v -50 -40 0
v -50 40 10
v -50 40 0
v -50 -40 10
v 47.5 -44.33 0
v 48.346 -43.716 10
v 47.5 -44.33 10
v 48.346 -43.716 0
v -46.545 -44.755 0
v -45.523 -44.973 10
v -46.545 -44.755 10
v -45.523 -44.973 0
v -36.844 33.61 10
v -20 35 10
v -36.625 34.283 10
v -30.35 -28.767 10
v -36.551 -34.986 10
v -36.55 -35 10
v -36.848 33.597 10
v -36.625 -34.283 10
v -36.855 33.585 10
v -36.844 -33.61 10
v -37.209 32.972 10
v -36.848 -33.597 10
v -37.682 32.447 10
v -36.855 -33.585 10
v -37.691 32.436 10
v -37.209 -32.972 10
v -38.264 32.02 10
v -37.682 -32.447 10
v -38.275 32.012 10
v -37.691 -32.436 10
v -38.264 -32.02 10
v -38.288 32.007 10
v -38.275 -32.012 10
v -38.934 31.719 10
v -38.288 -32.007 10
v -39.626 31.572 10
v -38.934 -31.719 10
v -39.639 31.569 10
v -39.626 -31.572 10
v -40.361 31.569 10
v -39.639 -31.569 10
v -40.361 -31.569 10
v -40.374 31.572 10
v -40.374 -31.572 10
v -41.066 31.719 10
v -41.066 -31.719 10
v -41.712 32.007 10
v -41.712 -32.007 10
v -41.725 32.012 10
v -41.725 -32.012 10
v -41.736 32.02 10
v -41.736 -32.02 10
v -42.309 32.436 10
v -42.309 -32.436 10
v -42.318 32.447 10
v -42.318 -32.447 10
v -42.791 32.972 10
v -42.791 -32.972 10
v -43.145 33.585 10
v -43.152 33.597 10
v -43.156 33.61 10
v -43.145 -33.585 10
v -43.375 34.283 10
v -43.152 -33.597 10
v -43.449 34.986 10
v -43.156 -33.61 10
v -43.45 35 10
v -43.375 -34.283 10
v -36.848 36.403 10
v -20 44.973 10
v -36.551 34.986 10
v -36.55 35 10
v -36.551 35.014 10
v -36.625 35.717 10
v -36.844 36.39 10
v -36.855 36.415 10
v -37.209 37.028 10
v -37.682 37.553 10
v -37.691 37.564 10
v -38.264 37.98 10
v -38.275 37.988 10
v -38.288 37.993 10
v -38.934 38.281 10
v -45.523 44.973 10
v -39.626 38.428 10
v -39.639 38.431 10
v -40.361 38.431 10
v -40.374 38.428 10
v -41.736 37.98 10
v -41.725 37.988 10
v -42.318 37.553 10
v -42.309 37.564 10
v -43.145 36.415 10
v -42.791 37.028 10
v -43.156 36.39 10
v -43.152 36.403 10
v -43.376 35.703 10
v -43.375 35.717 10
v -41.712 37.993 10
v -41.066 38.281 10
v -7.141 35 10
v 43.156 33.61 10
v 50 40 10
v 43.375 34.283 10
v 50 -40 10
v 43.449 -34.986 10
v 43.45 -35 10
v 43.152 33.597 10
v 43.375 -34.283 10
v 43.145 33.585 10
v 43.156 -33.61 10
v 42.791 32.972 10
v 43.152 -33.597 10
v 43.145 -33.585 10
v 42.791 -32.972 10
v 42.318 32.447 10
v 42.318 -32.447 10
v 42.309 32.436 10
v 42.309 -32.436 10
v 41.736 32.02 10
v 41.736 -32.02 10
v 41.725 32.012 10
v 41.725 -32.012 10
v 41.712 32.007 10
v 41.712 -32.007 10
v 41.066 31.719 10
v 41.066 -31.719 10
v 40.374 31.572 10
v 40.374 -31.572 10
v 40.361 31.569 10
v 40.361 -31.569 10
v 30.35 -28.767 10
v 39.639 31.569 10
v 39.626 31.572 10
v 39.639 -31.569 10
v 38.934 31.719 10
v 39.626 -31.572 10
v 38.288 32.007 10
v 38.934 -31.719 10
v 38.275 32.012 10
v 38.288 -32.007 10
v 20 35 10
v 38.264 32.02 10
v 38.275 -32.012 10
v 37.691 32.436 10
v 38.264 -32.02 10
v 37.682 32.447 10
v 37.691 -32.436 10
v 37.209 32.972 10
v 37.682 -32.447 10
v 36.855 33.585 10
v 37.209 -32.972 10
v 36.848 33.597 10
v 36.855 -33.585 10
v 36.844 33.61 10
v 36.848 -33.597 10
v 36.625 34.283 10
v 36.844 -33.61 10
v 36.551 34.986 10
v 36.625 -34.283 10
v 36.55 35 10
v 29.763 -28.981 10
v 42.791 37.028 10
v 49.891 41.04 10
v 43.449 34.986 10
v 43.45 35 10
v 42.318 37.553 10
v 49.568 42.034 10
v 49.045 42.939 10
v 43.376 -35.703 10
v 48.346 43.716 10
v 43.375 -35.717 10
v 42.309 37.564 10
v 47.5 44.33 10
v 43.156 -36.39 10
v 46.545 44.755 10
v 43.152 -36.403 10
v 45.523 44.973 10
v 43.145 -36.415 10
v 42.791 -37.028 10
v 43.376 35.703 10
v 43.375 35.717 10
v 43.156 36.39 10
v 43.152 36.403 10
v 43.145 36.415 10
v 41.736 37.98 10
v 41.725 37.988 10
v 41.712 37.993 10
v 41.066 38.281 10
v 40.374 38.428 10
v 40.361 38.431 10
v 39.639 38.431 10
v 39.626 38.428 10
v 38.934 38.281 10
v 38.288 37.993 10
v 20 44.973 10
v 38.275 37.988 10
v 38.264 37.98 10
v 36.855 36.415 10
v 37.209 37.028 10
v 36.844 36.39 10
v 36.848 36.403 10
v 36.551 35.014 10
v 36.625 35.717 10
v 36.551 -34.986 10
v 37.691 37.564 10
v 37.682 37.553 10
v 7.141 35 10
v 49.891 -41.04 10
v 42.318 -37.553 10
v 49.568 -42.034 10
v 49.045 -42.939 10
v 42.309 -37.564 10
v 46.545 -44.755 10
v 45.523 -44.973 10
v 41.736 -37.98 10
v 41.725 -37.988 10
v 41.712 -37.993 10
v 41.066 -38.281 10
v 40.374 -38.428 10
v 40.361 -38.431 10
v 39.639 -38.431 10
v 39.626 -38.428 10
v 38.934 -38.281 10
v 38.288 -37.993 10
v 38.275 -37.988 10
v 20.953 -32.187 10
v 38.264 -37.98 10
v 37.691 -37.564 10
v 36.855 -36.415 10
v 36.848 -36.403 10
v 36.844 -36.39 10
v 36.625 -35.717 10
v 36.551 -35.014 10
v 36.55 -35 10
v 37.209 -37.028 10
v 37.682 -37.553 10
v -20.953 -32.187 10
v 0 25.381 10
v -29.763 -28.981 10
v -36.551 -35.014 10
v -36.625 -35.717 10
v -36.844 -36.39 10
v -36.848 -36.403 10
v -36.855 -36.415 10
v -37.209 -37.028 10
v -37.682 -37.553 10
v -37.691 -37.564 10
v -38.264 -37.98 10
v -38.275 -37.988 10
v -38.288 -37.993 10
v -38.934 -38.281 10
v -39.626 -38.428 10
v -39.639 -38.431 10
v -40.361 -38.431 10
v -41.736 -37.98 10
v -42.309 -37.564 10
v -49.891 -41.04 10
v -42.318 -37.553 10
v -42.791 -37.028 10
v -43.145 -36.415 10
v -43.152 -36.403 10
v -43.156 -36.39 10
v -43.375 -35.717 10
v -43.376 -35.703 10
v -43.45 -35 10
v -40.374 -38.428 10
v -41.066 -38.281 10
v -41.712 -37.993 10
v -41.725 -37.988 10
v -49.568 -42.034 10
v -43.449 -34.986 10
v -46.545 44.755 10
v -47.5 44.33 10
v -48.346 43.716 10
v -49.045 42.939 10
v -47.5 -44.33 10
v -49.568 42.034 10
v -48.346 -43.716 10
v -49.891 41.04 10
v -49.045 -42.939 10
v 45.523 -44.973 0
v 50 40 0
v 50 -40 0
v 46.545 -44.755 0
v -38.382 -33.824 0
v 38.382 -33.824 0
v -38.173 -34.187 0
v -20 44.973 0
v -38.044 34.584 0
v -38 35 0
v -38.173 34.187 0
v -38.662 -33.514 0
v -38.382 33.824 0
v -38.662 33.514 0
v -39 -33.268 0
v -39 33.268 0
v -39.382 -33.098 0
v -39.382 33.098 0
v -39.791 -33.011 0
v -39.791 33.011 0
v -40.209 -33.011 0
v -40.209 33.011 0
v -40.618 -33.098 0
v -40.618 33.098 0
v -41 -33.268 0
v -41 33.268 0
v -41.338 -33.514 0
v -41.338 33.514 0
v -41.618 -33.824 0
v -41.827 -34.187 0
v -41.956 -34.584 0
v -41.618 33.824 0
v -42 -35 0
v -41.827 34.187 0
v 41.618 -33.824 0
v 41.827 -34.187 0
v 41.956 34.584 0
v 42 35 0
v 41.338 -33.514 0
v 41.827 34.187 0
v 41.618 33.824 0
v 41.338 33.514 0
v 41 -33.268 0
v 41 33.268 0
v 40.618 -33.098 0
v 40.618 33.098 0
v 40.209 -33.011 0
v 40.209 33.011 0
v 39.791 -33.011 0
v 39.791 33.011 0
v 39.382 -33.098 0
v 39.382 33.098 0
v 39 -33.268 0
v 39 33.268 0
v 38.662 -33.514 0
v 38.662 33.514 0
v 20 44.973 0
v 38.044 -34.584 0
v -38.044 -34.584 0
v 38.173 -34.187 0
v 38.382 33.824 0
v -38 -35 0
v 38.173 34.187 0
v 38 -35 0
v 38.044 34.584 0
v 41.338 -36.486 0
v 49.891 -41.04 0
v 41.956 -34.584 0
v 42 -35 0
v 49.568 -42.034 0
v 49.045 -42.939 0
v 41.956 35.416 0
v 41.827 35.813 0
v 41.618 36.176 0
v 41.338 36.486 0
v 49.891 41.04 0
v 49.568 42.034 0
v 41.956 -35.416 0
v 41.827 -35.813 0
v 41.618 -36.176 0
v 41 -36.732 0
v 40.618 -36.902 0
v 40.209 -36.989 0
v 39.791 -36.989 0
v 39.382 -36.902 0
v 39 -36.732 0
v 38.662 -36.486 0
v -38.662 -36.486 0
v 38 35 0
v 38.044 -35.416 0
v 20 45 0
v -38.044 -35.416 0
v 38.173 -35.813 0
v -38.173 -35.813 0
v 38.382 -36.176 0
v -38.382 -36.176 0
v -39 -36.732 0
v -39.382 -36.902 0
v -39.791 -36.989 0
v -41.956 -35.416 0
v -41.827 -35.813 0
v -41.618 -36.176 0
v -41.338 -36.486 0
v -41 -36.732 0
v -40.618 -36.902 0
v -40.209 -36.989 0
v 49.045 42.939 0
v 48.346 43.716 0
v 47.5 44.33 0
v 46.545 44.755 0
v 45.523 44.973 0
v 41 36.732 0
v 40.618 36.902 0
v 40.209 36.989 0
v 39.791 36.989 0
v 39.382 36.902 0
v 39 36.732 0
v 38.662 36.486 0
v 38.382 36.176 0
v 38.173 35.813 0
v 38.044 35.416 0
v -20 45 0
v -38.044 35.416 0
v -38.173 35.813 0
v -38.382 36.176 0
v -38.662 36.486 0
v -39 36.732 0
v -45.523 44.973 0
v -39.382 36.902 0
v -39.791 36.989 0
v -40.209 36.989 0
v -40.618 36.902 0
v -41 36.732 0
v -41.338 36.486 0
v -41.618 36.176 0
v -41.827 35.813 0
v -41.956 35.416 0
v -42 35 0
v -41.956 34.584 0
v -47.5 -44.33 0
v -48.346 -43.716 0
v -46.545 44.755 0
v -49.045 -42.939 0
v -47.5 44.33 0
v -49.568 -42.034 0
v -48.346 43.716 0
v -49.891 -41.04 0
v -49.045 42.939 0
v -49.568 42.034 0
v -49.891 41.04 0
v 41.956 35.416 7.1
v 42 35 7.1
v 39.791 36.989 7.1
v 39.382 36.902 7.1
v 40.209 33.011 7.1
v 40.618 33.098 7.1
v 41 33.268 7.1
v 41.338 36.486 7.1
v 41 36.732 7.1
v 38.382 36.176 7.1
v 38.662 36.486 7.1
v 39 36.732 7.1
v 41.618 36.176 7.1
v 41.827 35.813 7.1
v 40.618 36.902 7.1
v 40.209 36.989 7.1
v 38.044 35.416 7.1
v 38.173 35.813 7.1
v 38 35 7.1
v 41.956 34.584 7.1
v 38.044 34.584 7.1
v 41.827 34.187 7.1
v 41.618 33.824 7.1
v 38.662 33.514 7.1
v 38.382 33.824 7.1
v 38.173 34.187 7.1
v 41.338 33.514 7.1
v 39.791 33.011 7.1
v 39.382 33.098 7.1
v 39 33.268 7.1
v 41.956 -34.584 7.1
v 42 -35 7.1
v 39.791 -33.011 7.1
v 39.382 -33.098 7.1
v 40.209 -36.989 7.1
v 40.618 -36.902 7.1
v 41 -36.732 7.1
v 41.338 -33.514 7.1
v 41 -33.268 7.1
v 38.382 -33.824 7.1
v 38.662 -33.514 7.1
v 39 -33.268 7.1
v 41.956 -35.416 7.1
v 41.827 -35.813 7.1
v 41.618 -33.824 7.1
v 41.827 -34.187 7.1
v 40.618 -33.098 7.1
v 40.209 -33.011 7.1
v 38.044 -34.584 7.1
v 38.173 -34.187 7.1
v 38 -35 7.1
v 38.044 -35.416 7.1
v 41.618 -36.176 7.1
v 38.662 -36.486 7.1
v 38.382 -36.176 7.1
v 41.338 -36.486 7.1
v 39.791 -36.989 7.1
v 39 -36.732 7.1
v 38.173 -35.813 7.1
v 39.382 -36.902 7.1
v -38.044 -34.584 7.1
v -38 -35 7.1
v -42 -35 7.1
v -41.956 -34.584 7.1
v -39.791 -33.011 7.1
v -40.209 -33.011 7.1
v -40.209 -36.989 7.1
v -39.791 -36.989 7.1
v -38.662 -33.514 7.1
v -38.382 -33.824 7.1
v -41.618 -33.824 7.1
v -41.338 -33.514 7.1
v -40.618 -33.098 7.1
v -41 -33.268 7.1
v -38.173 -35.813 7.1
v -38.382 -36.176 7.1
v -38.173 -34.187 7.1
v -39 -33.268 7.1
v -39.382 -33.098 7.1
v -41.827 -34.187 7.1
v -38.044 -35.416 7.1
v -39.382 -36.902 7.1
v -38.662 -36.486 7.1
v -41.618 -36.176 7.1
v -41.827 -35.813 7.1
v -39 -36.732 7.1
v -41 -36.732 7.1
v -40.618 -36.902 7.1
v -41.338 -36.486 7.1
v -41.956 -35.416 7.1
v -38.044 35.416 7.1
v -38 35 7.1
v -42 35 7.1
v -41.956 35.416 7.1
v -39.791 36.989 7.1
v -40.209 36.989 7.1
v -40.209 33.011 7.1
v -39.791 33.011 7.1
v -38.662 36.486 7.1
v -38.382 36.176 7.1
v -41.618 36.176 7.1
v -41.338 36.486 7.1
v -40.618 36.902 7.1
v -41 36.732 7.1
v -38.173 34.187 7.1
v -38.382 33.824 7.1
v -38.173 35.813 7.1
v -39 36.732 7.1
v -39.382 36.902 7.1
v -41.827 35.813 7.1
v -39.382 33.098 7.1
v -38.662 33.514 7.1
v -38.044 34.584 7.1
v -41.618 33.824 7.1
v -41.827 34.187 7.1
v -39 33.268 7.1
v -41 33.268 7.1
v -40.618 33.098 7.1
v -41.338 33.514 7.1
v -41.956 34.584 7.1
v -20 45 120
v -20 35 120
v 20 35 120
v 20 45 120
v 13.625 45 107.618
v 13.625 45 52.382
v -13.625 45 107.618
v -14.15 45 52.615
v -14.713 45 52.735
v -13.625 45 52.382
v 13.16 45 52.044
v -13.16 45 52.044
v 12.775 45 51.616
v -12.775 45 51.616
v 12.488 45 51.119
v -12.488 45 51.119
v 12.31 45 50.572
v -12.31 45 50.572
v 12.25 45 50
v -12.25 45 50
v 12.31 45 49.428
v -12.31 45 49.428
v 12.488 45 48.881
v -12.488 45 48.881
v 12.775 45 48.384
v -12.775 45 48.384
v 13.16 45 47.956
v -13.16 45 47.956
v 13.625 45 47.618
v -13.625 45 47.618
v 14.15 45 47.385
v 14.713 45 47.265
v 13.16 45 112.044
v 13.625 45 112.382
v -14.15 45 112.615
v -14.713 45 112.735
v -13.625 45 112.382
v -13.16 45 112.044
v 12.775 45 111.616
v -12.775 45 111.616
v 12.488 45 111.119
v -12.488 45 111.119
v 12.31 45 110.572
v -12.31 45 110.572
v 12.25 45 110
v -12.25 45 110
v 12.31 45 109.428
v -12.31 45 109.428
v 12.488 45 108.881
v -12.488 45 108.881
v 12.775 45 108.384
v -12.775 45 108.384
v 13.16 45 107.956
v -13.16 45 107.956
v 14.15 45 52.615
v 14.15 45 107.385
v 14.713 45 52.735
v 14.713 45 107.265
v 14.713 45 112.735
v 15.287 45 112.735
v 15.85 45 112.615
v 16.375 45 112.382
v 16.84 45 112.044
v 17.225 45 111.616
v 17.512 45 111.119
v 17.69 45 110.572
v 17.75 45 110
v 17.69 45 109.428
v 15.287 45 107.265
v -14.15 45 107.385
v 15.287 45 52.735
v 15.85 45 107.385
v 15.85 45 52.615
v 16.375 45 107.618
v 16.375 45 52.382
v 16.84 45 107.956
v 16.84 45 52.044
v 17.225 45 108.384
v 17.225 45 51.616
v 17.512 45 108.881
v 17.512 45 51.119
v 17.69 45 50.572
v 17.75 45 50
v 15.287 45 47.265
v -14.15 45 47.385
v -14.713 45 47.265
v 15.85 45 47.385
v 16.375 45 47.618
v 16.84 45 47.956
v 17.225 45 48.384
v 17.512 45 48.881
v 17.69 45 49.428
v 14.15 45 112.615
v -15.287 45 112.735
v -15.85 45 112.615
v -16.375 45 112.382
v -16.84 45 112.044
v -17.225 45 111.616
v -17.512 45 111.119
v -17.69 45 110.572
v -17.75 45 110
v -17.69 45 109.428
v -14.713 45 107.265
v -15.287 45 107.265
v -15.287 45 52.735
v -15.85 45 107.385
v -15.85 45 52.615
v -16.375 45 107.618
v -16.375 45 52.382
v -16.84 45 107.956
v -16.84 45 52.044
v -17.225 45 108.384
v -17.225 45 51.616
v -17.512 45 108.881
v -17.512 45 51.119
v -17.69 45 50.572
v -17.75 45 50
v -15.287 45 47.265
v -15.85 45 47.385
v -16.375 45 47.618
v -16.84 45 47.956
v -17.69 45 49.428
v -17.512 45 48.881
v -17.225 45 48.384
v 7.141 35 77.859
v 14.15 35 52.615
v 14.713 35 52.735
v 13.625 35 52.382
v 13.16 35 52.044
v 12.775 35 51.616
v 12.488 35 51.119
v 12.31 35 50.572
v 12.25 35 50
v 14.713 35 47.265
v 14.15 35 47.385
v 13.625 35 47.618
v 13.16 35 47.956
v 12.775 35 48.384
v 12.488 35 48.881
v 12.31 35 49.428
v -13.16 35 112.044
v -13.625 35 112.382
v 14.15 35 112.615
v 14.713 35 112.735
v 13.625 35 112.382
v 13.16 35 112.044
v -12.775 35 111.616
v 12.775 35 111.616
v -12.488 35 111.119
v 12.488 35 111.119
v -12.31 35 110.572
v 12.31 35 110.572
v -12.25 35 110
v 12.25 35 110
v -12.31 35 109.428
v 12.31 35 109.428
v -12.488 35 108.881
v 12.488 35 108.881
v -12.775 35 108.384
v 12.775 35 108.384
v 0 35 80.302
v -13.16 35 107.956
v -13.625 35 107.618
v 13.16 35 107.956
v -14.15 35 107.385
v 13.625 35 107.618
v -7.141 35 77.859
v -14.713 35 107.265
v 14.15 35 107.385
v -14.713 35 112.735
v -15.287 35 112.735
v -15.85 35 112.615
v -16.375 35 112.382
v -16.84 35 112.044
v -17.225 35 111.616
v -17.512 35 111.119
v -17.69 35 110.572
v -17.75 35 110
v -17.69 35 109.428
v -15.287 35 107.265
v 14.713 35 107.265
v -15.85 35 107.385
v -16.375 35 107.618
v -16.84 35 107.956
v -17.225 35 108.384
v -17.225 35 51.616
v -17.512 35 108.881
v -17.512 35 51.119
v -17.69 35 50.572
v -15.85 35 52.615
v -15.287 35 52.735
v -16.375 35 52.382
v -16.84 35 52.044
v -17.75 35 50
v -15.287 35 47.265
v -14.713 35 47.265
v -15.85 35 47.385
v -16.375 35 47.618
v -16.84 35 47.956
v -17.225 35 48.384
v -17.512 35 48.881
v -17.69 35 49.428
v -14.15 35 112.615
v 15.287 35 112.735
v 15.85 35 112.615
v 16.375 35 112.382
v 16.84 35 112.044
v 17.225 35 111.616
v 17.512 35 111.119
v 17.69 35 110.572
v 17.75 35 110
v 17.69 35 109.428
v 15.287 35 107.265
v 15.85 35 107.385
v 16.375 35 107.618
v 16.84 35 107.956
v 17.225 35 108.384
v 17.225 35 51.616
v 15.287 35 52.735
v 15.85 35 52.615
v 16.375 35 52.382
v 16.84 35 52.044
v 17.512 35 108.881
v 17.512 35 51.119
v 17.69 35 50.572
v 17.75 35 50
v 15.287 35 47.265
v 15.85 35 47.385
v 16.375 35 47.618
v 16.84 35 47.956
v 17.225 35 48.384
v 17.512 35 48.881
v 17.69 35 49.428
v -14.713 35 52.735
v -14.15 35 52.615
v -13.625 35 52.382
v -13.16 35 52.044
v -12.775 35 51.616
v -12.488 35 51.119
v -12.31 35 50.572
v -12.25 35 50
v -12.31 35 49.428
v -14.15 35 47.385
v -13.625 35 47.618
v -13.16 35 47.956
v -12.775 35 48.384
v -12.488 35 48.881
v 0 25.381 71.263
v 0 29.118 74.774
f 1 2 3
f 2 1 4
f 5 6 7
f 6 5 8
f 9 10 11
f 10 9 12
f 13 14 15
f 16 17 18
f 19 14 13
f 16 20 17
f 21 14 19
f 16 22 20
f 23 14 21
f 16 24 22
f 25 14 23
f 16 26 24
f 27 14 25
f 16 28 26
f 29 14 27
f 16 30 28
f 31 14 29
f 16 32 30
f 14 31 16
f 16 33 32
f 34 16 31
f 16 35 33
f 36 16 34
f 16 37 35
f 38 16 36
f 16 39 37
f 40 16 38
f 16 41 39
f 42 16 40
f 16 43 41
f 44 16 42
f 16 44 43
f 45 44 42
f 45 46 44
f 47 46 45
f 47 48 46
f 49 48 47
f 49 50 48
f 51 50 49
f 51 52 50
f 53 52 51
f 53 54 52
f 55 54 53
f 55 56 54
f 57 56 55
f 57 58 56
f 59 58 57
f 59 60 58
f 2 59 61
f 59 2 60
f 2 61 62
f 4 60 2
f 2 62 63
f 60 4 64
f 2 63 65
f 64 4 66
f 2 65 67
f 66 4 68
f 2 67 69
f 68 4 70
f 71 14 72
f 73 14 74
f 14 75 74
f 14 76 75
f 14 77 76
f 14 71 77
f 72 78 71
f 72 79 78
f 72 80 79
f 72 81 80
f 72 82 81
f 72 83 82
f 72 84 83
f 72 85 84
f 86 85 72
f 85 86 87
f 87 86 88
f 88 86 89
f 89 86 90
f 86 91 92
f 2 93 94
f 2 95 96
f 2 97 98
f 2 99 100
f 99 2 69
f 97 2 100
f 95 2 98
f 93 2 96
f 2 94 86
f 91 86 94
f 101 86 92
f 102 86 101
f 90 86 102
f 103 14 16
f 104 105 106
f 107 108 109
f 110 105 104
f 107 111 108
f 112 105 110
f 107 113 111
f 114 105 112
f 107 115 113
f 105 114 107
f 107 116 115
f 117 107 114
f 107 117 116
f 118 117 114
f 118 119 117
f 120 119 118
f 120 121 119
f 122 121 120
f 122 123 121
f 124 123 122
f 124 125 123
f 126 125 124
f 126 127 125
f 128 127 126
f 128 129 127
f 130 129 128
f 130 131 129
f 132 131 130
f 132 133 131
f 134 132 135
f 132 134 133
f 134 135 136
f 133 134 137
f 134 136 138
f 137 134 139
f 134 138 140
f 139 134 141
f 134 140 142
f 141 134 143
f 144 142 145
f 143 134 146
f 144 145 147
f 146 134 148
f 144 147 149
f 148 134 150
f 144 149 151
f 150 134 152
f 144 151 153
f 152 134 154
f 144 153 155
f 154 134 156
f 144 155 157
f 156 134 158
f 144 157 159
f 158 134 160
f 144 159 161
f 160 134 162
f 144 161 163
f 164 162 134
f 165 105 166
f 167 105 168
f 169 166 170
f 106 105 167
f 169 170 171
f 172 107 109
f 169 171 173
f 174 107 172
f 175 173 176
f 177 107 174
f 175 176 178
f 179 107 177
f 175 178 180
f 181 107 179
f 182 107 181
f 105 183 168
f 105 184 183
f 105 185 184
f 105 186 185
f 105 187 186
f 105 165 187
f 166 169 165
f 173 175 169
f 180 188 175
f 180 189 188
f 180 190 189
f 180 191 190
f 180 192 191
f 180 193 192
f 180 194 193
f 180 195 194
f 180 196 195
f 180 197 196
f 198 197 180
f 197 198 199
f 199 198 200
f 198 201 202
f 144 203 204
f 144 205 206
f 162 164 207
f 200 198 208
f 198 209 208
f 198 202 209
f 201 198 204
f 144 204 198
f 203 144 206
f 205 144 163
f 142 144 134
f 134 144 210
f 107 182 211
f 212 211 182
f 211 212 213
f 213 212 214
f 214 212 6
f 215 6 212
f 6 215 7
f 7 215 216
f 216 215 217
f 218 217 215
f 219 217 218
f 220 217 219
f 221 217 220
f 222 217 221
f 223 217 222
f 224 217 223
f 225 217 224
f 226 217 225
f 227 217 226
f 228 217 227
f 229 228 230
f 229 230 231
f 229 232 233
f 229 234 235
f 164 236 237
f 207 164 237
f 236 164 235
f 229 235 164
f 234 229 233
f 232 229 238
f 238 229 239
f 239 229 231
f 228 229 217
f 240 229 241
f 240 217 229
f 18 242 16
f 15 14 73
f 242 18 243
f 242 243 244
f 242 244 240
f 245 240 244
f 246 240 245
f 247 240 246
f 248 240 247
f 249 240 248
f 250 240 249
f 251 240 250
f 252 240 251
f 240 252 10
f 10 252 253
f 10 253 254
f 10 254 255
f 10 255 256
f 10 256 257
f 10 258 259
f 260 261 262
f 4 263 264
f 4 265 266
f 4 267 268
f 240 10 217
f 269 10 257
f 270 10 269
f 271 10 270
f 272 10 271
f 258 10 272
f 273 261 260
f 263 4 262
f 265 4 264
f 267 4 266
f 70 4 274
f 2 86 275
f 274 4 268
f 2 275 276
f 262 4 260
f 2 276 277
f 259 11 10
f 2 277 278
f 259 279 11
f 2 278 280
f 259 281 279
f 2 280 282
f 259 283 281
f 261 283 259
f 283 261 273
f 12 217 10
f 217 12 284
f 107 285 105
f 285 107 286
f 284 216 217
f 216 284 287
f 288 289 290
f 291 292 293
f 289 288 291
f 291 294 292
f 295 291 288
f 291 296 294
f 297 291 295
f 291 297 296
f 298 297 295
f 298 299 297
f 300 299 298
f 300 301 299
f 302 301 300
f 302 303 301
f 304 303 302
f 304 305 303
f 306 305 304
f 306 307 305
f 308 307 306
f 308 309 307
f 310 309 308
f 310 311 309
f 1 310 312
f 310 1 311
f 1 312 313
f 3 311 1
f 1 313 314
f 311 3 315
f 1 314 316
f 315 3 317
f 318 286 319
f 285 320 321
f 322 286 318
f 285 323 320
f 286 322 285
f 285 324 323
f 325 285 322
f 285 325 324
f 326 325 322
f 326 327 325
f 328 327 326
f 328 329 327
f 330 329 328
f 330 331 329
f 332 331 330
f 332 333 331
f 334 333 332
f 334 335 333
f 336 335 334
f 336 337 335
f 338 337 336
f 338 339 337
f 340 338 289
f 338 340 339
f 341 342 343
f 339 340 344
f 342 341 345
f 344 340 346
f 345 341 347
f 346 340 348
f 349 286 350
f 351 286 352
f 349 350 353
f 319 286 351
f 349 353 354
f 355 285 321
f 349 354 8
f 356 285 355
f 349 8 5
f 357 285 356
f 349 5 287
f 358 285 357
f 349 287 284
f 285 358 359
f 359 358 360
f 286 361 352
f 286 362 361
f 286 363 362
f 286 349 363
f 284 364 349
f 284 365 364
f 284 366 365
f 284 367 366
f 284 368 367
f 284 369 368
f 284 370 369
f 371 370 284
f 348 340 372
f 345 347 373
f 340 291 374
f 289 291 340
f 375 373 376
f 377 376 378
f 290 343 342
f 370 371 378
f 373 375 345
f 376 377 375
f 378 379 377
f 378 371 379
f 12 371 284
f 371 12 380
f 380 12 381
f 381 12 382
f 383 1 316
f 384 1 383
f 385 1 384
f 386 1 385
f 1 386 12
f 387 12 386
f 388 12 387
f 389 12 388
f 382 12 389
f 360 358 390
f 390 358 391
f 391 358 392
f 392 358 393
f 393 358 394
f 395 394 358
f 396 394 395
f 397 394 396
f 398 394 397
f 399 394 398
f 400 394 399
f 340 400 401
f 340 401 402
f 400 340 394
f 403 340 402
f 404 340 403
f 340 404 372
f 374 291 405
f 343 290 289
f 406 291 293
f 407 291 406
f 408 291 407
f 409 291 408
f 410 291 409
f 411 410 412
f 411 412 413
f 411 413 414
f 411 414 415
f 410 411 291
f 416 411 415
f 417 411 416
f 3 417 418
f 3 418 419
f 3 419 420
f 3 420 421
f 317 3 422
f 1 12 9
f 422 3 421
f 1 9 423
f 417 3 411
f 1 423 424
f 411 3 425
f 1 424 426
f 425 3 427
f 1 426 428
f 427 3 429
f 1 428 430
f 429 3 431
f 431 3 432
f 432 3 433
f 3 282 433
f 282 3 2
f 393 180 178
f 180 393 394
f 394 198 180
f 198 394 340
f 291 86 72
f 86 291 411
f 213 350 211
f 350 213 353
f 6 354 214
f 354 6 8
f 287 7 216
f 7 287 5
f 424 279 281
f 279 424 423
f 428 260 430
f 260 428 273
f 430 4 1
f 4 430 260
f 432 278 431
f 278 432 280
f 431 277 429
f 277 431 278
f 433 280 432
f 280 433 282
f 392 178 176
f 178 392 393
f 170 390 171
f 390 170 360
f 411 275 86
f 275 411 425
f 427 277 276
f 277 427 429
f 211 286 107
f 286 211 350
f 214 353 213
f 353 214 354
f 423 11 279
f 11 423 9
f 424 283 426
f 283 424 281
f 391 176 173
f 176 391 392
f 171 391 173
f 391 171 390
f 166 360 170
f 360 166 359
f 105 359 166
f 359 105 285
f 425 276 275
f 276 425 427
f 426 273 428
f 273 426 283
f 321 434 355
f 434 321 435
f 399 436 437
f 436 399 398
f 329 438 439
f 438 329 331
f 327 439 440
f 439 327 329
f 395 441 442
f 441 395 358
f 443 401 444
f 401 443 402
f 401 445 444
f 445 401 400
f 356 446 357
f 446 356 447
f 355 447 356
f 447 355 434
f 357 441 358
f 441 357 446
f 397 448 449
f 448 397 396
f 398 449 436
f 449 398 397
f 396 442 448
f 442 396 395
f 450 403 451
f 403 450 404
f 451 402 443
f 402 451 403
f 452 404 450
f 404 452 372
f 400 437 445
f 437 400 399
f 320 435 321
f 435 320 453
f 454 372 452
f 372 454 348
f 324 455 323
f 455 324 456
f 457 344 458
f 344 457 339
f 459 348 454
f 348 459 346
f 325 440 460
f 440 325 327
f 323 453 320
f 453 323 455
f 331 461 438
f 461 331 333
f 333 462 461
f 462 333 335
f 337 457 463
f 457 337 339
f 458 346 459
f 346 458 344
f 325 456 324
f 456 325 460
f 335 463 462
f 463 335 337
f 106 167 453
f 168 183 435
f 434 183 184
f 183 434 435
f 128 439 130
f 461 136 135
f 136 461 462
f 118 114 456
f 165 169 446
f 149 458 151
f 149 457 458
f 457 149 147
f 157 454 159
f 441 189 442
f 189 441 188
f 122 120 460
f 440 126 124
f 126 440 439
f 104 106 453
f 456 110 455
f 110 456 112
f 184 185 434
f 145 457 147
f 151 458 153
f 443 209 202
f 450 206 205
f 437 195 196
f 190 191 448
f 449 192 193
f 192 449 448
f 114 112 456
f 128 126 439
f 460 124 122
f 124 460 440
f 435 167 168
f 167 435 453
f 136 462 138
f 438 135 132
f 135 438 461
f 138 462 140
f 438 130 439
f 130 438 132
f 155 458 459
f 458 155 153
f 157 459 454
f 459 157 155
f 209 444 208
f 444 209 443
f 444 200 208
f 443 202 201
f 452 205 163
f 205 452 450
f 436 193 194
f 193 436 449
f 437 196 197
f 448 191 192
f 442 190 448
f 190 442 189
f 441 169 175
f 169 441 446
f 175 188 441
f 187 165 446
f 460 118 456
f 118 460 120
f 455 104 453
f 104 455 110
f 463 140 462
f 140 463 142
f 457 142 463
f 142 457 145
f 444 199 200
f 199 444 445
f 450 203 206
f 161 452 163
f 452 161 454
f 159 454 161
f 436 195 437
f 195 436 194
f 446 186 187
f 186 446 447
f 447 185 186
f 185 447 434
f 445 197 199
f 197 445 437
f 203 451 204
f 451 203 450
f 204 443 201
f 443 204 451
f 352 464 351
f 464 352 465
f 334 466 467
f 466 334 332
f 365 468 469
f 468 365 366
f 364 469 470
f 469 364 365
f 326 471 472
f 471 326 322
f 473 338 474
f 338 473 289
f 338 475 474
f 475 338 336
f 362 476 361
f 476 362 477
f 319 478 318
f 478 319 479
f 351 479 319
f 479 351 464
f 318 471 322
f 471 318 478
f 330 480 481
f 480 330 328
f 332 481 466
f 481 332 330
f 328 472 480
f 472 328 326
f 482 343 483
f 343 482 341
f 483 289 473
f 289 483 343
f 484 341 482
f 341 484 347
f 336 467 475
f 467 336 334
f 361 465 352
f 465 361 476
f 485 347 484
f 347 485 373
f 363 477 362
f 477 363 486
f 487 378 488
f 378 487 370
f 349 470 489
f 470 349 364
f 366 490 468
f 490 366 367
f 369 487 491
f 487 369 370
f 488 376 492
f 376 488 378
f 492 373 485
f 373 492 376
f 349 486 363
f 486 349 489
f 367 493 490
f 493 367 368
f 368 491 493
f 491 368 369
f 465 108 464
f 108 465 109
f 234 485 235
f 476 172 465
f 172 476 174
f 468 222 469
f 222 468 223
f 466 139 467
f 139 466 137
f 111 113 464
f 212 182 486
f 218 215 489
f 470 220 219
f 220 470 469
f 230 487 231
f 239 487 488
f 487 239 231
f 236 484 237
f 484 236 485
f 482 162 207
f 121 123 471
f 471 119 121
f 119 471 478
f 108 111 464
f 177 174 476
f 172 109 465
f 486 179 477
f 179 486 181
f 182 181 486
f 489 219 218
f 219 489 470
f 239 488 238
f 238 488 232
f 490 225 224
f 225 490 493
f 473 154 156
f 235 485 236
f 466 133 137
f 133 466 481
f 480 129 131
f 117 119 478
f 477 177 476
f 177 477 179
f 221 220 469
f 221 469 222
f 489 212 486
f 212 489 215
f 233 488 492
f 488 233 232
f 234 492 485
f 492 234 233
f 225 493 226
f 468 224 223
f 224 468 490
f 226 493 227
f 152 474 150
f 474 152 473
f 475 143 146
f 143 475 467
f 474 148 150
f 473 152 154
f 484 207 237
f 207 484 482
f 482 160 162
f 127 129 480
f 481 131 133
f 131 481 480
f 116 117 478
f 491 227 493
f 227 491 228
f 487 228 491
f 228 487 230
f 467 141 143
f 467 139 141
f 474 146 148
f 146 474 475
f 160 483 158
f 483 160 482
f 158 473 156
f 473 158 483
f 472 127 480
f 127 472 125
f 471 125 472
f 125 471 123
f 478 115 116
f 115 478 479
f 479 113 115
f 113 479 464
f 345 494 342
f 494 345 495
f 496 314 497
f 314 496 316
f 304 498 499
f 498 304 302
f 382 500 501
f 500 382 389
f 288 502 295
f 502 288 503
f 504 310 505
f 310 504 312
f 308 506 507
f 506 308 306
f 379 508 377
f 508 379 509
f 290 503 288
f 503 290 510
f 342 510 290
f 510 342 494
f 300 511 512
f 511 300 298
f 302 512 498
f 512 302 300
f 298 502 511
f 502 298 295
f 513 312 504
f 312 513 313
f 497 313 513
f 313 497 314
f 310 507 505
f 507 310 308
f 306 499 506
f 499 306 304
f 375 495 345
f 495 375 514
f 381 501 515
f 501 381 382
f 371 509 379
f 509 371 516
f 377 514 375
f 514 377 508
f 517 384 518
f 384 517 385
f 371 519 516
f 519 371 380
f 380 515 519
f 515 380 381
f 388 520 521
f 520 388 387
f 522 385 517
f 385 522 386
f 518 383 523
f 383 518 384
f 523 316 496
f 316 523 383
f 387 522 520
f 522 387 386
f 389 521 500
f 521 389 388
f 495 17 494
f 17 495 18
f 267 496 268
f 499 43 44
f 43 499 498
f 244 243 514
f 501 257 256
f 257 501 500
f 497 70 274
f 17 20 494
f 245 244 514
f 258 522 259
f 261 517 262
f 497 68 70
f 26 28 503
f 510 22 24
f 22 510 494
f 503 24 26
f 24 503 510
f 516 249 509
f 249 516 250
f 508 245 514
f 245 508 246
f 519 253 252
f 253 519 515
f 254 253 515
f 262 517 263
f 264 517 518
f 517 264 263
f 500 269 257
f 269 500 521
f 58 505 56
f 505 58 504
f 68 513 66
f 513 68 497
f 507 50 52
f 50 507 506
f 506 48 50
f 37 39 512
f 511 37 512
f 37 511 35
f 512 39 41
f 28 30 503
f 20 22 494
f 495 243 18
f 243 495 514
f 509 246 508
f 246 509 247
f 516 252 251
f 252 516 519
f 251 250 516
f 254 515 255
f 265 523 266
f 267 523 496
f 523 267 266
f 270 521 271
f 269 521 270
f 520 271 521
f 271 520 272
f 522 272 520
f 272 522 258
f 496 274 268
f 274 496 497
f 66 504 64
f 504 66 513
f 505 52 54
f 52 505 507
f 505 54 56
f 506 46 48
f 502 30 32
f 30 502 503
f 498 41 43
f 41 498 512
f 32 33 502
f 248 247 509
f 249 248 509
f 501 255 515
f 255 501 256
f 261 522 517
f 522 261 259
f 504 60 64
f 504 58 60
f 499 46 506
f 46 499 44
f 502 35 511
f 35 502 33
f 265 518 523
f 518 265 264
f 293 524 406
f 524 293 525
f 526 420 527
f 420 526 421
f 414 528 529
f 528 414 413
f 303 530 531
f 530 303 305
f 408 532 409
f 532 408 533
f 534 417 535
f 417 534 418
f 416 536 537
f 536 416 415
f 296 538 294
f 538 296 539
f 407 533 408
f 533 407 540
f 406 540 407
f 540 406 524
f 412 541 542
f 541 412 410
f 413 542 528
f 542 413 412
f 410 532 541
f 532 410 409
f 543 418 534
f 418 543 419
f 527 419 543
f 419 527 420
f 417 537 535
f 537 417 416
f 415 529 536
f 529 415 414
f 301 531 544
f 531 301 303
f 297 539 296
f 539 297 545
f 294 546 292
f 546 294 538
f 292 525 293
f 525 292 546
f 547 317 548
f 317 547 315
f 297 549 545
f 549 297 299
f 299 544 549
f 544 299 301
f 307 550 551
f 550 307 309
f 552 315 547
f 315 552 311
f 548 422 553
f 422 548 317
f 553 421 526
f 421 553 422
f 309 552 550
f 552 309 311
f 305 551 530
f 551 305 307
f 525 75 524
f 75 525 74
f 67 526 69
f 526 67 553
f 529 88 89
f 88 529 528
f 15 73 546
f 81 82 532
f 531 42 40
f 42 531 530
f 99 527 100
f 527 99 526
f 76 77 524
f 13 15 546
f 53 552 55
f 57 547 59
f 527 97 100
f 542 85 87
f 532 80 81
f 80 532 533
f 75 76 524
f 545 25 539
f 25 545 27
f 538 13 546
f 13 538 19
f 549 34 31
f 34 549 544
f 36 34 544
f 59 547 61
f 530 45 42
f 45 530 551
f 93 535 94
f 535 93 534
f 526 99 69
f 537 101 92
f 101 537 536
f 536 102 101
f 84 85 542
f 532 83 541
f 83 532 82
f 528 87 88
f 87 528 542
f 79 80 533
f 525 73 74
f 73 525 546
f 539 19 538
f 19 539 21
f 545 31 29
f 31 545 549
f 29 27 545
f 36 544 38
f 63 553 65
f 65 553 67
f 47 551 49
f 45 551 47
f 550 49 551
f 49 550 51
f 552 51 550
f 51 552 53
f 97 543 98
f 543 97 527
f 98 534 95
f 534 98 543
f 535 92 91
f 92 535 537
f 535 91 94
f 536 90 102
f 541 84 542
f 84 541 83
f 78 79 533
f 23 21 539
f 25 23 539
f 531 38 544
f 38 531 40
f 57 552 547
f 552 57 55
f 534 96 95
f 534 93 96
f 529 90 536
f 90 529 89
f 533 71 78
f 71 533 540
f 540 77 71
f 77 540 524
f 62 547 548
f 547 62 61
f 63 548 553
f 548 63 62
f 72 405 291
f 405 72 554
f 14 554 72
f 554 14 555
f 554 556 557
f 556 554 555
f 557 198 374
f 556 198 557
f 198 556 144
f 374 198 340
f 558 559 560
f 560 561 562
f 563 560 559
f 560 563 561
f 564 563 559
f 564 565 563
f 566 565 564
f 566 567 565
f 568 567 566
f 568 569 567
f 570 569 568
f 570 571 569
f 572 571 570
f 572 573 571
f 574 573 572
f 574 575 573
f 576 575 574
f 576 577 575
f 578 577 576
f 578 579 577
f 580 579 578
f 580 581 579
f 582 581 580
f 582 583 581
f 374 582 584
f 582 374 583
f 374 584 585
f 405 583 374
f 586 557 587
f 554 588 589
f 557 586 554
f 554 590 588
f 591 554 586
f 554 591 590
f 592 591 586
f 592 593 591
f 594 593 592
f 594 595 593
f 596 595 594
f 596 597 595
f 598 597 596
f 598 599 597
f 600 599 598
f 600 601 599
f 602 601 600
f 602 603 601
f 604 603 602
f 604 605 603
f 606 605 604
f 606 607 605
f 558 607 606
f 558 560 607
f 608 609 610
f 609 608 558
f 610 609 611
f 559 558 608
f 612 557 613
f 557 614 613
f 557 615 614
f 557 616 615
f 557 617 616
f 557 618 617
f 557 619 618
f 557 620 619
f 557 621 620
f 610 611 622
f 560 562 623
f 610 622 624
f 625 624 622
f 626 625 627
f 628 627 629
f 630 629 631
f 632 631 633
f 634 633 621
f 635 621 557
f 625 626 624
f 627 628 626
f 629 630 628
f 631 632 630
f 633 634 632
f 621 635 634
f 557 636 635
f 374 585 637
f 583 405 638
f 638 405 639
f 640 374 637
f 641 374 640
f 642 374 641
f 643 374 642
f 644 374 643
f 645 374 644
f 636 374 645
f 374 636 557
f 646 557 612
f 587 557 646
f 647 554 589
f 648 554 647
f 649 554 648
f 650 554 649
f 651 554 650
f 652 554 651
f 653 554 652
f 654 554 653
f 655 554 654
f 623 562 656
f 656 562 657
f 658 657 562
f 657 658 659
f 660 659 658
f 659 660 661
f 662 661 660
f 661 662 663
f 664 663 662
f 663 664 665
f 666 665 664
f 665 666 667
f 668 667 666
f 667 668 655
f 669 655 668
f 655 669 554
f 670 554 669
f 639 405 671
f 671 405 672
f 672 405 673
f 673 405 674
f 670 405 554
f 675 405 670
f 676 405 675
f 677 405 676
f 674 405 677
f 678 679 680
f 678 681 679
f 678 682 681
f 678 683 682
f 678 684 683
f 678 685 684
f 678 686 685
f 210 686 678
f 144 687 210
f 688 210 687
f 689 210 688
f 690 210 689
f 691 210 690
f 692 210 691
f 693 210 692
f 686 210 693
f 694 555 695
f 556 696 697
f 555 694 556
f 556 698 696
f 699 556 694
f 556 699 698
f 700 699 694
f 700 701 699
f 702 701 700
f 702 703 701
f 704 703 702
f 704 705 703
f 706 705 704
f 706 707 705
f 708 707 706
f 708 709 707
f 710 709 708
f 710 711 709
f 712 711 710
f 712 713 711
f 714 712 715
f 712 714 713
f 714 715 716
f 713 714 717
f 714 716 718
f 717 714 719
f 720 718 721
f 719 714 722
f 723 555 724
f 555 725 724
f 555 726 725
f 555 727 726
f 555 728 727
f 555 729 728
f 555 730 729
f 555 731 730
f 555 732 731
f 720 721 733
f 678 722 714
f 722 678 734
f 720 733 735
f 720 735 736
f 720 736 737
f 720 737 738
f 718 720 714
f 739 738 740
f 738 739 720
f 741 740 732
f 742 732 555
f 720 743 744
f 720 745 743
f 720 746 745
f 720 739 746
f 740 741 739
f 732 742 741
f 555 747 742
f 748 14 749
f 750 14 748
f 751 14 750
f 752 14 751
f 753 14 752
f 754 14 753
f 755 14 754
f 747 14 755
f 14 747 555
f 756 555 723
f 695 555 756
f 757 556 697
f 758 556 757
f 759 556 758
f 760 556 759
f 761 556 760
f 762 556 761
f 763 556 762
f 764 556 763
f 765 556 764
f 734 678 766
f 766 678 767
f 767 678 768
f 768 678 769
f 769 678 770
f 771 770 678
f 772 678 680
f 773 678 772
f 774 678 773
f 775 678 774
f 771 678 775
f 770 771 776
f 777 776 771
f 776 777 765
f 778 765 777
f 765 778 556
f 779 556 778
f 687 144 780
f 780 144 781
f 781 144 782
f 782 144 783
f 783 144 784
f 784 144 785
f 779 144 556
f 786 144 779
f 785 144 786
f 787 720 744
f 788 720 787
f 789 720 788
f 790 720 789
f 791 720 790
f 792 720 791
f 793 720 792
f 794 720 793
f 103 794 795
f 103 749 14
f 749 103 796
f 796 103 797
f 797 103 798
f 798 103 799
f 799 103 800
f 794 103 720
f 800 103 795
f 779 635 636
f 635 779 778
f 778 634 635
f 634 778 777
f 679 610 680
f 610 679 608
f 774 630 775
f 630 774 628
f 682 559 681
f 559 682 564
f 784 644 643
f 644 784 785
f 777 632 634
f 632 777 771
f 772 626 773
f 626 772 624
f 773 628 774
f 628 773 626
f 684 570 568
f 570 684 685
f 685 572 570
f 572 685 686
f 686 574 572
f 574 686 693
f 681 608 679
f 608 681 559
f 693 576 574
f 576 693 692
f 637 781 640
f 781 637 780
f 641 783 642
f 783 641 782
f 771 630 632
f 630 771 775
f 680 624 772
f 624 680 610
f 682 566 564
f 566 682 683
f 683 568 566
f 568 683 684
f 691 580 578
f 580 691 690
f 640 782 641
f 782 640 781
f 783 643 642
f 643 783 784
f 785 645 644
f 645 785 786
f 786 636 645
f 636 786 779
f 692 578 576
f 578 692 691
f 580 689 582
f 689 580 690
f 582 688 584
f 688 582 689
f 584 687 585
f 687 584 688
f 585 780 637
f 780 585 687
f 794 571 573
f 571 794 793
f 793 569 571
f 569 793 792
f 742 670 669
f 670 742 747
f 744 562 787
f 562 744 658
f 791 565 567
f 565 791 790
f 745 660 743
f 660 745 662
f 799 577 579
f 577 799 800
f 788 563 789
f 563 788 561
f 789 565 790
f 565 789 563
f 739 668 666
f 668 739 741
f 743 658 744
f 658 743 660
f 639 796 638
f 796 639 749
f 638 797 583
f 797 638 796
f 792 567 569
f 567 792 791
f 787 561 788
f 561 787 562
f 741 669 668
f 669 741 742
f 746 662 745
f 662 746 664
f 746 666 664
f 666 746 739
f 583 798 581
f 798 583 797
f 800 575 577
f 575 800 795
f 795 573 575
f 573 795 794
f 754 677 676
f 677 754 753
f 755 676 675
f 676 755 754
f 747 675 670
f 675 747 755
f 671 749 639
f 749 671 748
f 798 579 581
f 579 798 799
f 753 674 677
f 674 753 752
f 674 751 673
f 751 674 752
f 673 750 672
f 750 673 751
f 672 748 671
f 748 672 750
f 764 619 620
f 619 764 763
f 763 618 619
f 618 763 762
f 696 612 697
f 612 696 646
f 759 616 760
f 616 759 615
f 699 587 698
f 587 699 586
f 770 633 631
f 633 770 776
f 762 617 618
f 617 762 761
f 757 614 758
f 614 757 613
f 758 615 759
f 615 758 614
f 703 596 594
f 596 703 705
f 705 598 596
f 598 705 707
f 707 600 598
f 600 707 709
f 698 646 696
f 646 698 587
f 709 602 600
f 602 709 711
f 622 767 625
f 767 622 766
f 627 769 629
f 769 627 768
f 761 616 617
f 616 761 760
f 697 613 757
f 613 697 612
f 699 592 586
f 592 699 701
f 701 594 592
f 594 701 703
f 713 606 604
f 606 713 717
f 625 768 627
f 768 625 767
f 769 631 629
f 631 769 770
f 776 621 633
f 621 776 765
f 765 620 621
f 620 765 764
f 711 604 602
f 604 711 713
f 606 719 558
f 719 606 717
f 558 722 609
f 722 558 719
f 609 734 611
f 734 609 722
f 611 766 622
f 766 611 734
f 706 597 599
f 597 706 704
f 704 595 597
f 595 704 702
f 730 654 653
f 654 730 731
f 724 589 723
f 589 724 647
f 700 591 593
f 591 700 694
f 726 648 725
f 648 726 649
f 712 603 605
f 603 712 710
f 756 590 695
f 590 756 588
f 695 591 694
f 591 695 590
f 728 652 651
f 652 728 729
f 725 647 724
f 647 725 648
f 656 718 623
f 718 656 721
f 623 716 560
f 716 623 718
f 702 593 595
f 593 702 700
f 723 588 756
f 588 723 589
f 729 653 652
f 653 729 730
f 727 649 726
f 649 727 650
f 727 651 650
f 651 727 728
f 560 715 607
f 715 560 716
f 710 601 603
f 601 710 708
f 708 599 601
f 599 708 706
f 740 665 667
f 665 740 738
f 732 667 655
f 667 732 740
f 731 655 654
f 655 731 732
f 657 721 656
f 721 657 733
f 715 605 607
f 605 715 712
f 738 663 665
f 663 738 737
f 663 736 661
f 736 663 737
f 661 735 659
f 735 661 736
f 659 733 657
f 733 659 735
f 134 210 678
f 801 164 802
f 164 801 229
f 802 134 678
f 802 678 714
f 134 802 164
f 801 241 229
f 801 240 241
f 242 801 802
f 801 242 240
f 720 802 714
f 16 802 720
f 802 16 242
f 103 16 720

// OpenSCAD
$fn=30;

difference(){

translate([0,0,5])
minkowski(){
cube([90,80,10],center=true);
cylinder(d=10,h=0.0000001);
}

translate([40,35,-1])cylinder(d=4,h=12);
translate([40,35,7.1])cylinder(d1=4,d2=7,h=3);
translate([40,-35,-1])cylinder(d=4,h=12);
translate([40,-35,7.1])cylinder(d1=4,d2=7,h=3);
translate([-40,-35,-1])cylinder(d=4,h=12);
translate([-40,-35,7.1])cylinder(d1=4,d2=7,h=3);
translate([-40,35,-1])cylinder(d=4,h=12);
translate([-40,35,7.1])cylinder(d1=4,d2=7,h=3);

}

difference(){

translate([-20,35,0])cube([40,10,120]);

translate([15,60,50])rotate([90,0,0])
cylinder(d=5.5,h=40);
translate([-15,60,50])rotate([90,0,0])
cylinder(d=5.5,h=40);
translate([15,60,110])rotate([90,0,0])
cylinder(d=5.5,h=40);
translate([-15,60,110])rotate([90,0,0])
cylinder(d=5.5,h=40);

}
difference(){
translate([0,40,5])
rotate([90,0,-70])
translate([0,0,-5])
linear_extrude(10){
polygon([[0,0],[80,0],[0,80]]);
}
translate([-100,0,0])cube([100,100,100]);
}

difference(){
translate([0,40,5])
rotate([90,0,-110])
translate([0,0,-5])
linear_extrude(10){
polygon([[0,0],[80,0],[0,80]]);
}
cube([100,100,100]);
}
